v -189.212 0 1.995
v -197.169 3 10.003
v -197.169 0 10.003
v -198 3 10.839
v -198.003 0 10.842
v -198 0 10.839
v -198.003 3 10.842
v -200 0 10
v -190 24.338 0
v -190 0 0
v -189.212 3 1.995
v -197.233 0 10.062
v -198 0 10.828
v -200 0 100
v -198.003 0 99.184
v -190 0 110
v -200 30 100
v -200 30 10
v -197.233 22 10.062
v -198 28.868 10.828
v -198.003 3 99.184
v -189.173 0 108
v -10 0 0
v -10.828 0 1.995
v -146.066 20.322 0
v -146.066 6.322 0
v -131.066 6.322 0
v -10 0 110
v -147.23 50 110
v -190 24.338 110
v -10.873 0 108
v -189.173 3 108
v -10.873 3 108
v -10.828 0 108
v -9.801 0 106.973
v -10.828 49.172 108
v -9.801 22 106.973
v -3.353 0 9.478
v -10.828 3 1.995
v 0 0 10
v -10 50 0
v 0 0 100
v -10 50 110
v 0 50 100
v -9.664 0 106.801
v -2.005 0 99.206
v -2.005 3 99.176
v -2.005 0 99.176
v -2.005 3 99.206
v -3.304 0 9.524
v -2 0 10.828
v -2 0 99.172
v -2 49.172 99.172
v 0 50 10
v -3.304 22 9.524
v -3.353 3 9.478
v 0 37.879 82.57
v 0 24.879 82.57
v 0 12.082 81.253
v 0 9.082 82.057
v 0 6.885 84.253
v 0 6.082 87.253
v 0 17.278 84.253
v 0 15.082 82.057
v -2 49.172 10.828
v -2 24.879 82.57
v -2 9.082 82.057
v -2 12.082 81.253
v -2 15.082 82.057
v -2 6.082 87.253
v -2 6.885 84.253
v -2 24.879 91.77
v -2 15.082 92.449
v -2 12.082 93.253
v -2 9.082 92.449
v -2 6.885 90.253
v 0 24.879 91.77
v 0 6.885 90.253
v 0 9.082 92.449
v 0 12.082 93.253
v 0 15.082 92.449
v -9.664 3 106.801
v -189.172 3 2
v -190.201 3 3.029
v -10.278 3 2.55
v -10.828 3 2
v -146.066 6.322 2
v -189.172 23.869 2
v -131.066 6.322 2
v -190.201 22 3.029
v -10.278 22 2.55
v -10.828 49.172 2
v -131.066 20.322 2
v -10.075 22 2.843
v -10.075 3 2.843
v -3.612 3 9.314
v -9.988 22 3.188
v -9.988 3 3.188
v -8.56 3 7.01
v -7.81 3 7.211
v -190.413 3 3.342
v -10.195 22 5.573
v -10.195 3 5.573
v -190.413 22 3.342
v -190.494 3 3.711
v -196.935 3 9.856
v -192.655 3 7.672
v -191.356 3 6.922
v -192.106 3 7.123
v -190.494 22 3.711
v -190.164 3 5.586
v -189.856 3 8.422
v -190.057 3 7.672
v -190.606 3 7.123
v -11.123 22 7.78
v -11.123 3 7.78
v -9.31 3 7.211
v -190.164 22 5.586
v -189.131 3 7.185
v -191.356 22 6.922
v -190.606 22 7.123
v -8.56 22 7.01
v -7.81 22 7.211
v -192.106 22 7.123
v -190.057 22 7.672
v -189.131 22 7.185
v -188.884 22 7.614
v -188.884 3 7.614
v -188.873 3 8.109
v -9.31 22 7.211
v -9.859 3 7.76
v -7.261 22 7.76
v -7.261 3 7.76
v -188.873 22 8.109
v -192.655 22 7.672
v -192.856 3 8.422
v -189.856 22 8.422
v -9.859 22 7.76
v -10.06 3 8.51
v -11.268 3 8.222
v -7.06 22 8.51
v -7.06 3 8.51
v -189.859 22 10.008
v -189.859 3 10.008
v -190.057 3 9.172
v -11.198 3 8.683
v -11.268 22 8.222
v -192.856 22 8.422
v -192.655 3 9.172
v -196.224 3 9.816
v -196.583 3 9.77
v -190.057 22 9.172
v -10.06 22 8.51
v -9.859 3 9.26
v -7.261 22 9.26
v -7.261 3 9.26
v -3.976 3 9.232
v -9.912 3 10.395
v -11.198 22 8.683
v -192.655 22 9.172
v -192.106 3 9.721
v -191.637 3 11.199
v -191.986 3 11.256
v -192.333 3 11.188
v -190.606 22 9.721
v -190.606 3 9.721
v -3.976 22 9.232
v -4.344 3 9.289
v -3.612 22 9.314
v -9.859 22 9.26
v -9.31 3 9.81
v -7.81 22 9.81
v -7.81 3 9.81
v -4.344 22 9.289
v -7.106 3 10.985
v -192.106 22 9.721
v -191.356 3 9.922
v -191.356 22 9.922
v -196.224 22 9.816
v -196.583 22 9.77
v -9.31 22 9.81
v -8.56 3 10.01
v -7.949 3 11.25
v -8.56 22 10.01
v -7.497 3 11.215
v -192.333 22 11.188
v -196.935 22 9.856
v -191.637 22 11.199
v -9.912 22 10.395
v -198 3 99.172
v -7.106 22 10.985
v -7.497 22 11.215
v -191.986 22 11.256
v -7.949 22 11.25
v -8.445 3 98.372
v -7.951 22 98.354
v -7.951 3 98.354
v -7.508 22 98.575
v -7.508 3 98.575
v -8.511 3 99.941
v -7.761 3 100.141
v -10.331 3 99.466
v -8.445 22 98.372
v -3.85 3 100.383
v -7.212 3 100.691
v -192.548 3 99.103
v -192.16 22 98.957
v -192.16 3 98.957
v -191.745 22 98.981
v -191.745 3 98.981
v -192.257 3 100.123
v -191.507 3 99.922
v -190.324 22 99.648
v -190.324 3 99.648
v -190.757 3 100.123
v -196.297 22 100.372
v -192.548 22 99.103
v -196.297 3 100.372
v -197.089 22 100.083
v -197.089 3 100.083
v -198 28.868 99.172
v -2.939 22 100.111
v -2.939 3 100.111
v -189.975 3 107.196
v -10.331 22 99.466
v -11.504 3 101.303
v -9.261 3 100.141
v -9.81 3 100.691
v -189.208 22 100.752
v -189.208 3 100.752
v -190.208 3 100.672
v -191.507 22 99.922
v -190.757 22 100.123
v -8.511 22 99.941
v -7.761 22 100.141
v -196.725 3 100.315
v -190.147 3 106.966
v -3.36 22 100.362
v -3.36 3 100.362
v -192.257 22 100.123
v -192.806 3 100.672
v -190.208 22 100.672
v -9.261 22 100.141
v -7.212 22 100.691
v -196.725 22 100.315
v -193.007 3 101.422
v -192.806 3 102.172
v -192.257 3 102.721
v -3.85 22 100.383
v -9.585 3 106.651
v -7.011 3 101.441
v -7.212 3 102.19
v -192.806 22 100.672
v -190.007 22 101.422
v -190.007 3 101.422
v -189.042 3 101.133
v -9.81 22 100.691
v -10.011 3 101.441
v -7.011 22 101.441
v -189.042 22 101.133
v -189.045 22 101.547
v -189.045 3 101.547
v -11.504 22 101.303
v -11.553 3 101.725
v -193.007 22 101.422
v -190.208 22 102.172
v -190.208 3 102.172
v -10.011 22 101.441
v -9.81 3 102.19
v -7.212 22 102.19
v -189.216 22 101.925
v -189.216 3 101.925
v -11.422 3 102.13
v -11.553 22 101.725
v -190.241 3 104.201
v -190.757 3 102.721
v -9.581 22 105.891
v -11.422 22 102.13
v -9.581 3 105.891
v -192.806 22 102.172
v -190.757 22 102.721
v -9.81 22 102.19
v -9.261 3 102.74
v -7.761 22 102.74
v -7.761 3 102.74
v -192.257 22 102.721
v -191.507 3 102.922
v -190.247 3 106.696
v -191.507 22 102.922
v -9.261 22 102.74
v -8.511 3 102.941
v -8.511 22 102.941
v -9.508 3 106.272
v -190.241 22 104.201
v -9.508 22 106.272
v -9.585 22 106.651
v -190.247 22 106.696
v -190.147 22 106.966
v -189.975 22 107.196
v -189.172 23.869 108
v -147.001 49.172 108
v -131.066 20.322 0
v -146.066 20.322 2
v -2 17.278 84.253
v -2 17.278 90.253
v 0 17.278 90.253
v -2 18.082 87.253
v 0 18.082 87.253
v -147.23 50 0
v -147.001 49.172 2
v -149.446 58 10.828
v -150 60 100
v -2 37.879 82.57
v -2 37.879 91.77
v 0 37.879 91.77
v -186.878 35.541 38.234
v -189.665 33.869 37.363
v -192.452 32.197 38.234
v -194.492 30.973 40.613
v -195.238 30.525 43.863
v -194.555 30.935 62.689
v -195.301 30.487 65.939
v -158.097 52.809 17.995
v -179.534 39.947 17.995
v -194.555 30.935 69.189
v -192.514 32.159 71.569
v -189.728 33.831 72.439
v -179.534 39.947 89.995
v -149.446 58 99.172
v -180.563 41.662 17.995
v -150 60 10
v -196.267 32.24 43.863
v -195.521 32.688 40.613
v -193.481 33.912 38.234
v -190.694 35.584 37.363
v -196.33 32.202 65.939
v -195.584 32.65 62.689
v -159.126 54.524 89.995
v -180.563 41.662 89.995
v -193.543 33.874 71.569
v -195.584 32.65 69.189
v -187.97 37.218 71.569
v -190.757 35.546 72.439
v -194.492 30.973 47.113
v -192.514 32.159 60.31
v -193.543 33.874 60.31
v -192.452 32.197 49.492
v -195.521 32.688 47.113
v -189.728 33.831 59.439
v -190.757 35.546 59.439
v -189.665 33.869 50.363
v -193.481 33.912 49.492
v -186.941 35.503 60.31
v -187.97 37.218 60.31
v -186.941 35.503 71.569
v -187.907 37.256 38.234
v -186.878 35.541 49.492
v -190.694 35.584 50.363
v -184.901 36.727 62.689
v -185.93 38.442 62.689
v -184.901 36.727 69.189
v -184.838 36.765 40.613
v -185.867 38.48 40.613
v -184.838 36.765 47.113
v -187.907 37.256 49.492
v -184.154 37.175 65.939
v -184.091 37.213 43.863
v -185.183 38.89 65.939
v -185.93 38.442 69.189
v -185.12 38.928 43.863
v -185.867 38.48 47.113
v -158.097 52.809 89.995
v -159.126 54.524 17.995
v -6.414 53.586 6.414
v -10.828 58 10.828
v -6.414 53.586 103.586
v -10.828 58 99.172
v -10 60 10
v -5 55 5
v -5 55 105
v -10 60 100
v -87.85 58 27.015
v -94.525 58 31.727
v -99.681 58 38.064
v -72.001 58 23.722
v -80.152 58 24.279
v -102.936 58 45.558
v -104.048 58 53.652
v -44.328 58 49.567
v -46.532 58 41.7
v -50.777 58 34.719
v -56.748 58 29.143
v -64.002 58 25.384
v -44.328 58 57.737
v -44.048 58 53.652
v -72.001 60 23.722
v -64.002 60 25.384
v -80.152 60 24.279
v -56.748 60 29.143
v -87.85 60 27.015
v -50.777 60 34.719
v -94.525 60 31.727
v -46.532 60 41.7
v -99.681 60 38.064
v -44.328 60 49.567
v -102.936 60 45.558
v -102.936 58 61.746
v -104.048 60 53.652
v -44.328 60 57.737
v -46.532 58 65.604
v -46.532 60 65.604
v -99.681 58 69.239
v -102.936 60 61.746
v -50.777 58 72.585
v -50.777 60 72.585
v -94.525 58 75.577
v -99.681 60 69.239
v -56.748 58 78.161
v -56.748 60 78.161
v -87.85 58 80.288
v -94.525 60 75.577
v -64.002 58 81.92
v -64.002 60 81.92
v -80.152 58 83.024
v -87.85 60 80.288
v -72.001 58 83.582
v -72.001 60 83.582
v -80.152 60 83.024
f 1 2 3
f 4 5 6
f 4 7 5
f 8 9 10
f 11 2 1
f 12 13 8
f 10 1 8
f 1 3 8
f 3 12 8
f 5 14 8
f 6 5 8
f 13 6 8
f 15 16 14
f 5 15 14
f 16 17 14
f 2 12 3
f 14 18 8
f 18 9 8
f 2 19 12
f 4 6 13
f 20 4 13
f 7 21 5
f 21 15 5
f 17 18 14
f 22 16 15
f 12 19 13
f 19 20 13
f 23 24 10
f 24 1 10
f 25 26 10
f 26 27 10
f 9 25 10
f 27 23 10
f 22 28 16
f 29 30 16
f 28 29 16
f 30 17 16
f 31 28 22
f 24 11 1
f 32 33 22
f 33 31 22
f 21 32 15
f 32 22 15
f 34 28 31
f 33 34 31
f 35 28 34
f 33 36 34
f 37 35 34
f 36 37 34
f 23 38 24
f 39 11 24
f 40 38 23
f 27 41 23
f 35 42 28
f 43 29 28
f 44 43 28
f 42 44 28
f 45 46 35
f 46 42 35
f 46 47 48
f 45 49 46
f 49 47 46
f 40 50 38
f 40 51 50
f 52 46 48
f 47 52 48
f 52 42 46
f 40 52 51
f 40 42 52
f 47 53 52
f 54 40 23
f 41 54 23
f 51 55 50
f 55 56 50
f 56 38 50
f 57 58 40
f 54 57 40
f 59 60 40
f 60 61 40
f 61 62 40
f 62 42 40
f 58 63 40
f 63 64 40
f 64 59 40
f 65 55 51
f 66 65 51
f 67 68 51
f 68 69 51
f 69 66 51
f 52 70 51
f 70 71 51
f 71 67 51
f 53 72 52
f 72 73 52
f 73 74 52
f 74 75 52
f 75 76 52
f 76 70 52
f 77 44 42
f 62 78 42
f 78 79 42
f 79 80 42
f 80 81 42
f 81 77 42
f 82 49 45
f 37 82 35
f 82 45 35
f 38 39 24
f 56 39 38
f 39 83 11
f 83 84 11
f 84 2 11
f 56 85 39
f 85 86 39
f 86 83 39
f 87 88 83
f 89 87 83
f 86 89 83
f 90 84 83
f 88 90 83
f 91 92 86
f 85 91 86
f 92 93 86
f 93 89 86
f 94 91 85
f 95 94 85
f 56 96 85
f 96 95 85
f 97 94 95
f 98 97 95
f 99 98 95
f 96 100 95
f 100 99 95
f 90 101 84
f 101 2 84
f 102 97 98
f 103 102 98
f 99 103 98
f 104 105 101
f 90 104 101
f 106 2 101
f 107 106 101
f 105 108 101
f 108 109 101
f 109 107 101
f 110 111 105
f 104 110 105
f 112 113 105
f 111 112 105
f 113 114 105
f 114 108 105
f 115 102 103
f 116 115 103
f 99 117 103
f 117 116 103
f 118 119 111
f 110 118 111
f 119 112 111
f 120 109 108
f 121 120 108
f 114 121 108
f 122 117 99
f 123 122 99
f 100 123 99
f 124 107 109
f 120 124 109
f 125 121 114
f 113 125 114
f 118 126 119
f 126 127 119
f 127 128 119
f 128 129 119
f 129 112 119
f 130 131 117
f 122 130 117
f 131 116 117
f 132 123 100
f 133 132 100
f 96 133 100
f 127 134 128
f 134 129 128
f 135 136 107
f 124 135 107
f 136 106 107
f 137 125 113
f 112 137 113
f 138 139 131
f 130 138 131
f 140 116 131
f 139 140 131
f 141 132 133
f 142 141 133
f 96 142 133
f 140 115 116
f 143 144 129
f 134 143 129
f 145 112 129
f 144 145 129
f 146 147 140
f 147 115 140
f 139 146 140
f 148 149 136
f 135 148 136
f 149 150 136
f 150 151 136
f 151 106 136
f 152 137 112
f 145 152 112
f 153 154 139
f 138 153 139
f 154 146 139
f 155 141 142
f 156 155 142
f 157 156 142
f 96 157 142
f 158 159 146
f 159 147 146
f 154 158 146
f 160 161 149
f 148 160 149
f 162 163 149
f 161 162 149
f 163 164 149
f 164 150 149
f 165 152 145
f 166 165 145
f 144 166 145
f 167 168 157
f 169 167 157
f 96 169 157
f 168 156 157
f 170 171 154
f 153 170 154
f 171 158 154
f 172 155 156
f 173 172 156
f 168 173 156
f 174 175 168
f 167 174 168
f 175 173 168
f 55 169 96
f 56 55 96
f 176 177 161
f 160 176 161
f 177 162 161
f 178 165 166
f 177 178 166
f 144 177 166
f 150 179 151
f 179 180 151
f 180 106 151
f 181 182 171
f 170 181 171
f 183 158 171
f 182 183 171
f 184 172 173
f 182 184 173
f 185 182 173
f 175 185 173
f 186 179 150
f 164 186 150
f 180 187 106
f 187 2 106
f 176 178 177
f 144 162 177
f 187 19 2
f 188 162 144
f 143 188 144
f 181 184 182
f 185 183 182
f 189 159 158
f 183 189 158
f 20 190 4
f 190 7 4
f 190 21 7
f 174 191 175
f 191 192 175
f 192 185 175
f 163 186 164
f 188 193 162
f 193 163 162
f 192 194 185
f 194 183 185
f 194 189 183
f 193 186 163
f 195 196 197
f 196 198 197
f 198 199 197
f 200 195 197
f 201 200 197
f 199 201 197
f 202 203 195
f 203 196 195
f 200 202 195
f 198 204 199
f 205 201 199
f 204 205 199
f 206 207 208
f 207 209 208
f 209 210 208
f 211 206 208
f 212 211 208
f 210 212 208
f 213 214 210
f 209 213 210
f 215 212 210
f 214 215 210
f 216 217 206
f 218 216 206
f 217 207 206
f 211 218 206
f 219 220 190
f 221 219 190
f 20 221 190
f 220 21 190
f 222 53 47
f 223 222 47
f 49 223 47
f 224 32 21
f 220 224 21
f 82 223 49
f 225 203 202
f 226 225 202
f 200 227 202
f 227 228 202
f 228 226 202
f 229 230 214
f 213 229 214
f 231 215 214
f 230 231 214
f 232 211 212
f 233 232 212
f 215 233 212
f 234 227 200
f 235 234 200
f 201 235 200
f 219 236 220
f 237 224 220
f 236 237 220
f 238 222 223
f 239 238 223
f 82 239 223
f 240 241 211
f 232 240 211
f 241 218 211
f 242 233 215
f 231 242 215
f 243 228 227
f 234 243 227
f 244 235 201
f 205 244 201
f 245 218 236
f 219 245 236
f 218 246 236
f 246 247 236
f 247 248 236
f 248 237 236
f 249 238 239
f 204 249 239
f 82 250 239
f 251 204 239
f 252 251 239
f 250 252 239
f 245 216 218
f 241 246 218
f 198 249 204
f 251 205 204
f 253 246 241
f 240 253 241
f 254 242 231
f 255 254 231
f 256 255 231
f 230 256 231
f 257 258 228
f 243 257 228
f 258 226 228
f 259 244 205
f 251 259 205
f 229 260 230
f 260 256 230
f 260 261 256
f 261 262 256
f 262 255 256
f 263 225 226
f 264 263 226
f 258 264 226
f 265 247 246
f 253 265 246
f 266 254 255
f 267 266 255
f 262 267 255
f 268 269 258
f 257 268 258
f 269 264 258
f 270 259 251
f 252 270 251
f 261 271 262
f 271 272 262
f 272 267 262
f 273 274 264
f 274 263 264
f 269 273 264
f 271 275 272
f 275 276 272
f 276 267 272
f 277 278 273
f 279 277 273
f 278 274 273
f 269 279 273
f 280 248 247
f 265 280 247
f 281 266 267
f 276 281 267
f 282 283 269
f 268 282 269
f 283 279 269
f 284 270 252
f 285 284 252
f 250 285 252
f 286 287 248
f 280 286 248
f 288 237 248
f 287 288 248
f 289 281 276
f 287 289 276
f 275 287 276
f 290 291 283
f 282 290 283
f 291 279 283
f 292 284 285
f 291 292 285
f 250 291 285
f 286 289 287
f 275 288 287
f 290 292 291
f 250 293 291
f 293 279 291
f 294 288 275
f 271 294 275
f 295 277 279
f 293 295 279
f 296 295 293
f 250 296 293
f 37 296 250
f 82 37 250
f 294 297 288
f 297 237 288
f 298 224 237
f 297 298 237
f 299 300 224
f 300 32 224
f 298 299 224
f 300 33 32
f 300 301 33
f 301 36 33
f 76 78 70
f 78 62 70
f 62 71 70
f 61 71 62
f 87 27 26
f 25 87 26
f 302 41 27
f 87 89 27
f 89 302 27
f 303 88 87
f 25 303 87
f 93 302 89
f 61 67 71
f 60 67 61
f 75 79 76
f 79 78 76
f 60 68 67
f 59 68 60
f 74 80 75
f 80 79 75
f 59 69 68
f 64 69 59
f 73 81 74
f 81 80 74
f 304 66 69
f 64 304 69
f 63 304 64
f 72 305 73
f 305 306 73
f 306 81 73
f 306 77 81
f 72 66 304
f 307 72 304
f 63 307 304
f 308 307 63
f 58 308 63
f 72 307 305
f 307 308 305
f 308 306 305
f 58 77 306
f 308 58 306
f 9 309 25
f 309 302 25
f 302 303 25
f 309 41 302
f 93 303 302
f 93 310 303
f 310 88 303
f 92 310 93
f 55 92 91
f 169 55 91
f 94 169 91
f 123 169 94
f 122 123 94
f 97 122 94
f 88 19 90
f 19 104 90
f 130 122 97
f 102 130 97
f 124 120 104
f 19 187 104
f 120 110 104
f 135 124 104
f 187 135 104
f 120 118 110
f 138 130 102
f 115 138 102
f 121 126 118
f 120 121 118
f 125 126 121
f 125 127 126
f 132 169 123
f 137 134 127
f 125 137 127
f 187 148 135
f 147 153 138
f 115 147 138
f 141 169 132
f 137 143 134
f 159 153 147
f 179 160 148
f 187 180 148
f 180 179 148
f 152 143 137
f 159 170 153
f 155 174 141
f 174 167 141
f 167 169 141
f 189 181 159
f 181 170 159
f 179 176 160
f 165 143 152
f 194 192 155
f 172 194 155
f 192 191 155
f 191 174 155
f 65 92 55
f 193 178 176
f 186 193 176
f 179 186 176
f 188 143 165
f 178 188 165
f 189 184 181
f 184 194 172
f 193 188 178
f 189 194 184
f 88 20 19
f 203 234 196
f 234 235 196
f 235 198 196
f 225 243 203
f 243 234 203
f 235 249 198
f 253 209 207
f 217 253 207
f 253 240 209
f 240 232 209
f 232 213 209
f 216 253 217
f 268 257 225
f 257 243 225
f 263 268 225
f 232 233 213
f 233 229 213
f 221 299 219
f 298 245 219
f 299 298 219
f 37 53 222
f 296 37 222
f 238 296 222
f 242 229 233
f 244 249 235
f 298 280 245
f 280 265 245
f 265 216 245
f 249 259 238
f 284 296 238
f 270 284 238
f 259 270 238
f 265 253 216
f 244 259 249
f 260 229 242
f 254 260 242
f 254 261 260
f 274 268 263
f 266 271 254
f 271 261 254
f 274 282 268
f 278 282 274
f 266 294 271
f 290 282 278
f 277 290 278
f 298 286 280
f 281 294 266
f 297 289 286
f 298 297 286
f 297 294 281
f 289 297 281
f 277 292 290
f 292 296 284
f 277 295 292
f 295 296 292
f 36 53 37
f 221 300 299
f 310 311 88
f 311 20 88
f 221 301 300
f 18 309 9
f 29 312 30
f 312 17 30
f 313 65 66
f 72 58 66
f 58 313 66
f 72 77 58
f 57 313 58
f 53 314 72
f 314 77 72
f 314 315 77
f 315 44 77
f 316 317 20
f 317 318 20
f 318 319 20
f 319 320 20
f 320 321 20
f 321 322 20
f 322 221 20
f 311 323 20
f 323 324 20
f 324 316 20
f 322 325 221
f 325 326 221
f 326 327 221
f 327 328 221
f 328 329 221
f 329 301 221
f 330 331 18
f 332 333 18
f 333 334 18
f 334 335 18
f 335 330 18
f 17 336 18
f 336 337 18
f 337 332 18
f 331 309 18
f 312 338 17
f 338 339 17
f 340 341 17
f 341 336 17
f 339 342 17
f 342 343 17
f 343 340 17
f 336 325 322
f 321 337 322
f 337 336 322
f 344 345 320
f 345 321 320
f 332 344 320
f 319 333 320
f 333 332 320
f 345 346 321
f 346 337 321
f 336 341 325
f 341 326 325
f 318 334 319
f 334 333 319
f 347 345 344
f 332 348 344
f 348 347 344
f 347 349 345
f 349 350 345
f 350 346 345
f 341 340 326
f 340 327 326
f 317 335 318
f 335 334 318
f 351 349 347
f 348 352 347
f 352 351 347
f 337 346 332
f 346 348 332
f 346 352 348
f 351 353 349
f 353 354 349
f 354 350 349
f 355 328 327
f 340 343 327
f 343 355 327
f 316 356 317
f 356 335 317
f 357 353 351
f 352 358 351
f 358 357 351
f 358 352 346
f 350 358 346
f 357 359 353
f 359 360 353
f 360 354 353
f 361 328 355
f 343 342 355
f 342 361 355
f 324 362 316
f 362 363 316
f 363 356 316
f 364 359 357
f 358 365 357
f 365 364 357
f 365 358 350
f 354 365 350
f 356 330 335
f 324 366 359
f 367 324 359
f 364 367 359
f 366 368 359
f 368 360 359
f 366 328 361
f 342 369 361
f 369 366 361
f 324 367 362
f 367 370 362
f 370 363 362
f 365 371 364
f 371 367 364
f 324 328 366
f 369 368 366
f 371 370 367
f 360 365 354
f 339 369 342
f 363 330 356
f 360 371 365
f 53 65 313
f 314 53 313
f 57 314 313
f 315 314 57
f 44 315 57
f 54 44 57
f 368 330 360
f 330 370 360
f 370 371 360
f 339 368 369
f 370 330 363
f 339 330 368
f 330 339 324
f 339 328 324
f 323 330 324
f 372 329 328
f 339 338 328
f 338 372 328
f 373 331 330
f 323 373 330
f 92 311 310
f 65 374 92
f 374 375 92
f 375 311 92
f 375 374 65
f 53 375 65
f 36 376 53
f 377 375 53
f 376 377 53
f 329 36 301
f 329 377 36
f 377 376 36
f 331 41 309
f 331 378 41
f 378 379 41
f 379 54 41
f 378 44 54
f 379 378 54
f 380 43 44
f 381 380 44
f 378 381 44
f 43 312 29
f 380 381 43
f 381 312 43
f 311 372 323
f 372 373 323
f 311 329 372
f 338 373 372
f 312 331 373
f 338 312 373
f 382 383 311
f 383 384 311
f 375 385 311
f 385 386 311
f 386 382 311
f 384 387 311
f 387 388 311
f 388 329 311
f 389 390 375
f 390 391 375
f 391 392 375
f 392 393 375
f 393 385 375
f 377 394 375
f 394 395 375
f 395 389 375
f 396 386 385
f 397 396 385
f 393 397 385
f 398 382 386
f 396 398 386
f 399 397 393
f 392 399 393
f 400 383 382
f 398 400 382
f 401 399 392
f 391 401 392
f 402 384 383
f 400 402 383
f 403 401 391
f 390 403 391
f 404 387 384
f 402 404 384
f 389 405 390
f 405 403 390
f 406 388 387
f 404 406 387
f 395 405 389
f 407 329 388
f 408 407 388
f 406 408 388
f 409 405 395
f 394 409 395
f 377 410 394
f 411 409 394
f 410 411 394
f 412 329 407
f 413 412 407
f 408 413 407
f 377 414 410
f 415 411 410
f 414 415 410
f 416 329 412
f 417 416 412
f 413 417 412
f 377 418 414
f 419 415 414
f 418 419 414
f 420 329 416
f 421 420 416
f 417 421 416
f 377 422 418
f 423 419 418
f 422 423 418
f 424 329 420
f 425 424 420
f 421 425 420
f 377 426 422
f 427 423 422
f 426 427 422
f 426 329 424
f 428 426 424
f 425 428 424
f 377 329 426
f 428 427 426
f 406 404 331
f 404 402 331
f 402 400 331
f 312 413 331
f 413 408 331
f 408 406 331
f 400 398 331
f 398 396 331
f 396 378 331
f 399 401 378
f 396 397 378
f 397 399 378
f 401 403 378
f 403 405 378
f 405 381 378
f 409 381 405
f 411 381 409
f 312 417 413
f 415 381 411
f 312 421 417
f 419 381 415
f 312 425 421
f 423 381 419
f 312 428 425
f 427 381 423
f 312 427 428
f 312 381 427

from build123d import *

# Parameters (mm, degrees)
BOSS_EXTRUDE1_DEPTH = 110
CHAMFER1_SIZE       = 10
CHAMFER2_SIZE       = 10
SHELL2_T            = -2
SKETCH2_W           = 25
SKETCH2_H           = 72
CUT_EXTRUDE2_DEPTH  = 90
SKETCH4_R           = 6.5
CUT_EXTRUDE3_DEPTH  = 90
SKETCH5_R           = 1.5
BOSS_EXTRUDE2_DEPTH = 22
FILLET2_R           = 1
CUT_EXTRUDE4_DEPTH  = 3
SKETCH7_R           = 30
CUT_EXTRUDE5_DEPTH  = 61
SKETCH9_R           = 6
SKETCH9_W           = 9.2
SKETCH9_H           = 13
CUT_EXTRUDE6_DEPTH  = 48
SKETCH10_W          = 15
SKETCH10_H          = 14
CUT_EXTRUDE7_DEPTH  = 48


with BuildPart() as part:
    # Sketch1 → Boss-Extrude1 (new body)
    with BuildSketch(Plane.XY):
        Polygon((-200, 30), (-150, 60), (0, 60), (0, 0), (-200, 0), align=None)
    extrude(amount=BOSS_EXTRUDE1_DEPTH)

    # Chamfer1
    chamfer1_edges = [part.edges().sort_by_distance(p)[0] for p in [
        (-175, 45, 110),
        (-200, 15, 110),
        (0, 30, 110),
        (-200, 15, 0),
        (-175, 45, 0),
        (-75, 60, 0),
        (0, 30, 0),
        (-75, 60, 110),
    ]]
    chamfer(chamfer1_edges, length=CHAMFER1_SIZE)

    # Chamfer2
    chamfer2_edges = [part.edges().sort_by_distance(p)[0] for p in [
        (0, 60, 55),
    ]]
    chamfer(chamfer2_edges, length=CHAMFER2_SIZE)

    # Shell2
    shell2_openings = [part.faces().sort_by_distance(p)[0] for p in [
        (-100, 0, 55),
    ]]
    offset(amount=SHELL2_T, openings=shell2_openings, kind=Kind.INTERSECTION)

    # Sketch2 → Cut-Extrude2 (cut)
    with BuildSketch(Plane(origin=(-66.176470588, 110.294117647, 0), x_dir=(0.8574929257125443, 0.5144957554275263, 0), z_dir=(-0.5144957554275263, 0.8574929257125443, 0))):
        with Locations((-120.89691226, -53.994862886)):
            Rectangle(SKETCH2_W, SKETCH2_H)
    extrude(amount=-CUT_EXTRUDE2_DEPTH, mode=Mode.SUBTRACT)

    # Sketch4 → Cut-Extrude3 (cut)
    with BuildSketch(Plane(origin=(-66.176470588, 110.294117647, 0), x_dir=(0.8574929257125443, 0.5144957554275263, 0), z_dir=(-0.5144957554275263, 0.8574929257125443, 0))):
        with Locations(Location((-145.210771321, -43.863127818, 0), (0, 0, 180))):
            Circle(SKETCH4_R)
        with Locations(Location((-145.284101168, -65.939492282, 0), (0, 0, 180))):
            Circle(SKETCH4_R)
    extrude(amount=-CUT_EXTRUDE3_DEPTH, mode=Mode.SUBTRACT)

    # Sketch5 → Boss-Extrude2 (add)
    # profile 1 of 4: a face of its own
    with BuildSketch(Plane.XZ):
        with BuildLine():
            Line((-9.247397896, 106.757043705), (-3.256064459, 100.483765165))
            ThreePointArc((-3.256064459, 100.483765165), (-5.744873038, 99.736713828), (-7.870281401, 98.241757931))
            ThreePointArc((-7.870281401, 98.241757931), (-10.292221795, 99.429108259), (-11.636574356, 101.767550533))
            ThreePointArc((-11.636574356, 101.767550533), (-10.323587398, 104.205602893), (-9.247397896, 106.757043705))
        make_face()
        with Locations((-8.511299496, 101.440505433)):
            Circle(SKETCH5_R, mode=Mode.SUBTRACT)
    # profile 2 of 4: a face of its own
    with BuildSketch(Plane.XZ):
        with BuildLine():
            Line((-10.039510209, 2.683192712), (-3.513368166, 9.046181203))
            ThreePointArc((-3.513368166, 9.046181203), (-5.632030744, 9.88127065), (-7.41571196, 11.29710497))
            ThreePointArc((-7.41571196, 11.29710497), (-9.918845287, 10.389628717), (-11.372165694, 8.158698553))
            ThreePointArc((-11.372165694, 8.158698553), (-10.188591886, 5.546835518), (-10.039510209, 2.683192712))
        make_face()
        with Locations((-8.560298278, 8.510476998)):
            Circle(SKETCH5_R, mode=Mode.SUBTRACT)
    # profile 3 of 4: a face of its own
    with BuildSketch(Plane.XZ):
        with BuildLine():
            Line((-190.1639185, 107.037062189), (-196.90252996, 100.401487601))
            ThreePointArc((-196.90252996, 100.401487601), (-194.442462904, 99.997388644), (-192.214833899, 98.878060765))
            ThreePointArc((-192.214833899, 98.878060765), (-190.200311855, 99.737450982), (-188.807968894, 101.428081542))
            ThreePointArc((-188.807968894, 101.428081542), (-190.20827937, 104.057949981), (-190.1639185, 107.037062189))
        make_face()
        with Locations((-191.50742986, 101.422355381)):
            Circle(SKETCH5_R, mode=Mode.SUBTRACT)
    # profile 4 of 4: a face of its own
    with BuildSketch(Plane.XZ):
        with BuildLine():
            Line((-190.456179178, 3.22389745), (-196.869032371, 9.61475183))
            ThreePointArc((-196.869032371, 9.61475183), (-194.424366222, 10.415493615), (-192.013666474, 11.313328071))
            ThreePointArc((-192.013666474, 11.313328071), (-189.789786951, 9.928723292), (-188.777999187, 7.512309411))
            ThreePointArc((-188.777999187, 7.512309411), (-190.165240448, 5.582610921), (-190.456179178, 3.22389745))
        make_face()
        with Locations((-191.356454927, 8.42171973)):
            Circle(SKETCH5_R, mode=Mode.SUBTRACT)
    extrude(amount=-BOSS_EXTRUDE2_DEPTH)

    # Fillet2
    fillet2_edges = [part.edges().sort_by_distance(p)[0] for p in [
        (-196.80570876, 11, 9.634135884),
        (-190.464527553, 11, 3.292954677),
        (-188.777999187, 11, 7.512309411),
        (-192.013666474, 11, 11.313328071),
        (-10.024061604, 11, 2.80436552),
        (-3.72900082, 11, 9.099426304),
        (-7.41571196, 11, 11.29710497),
        (-11.372165694, 11, 8.158698553),
        (-196.772588823, 11, 100.398984052),
        (-190.174781799, 11, 106.996791076),
        (-192.214833899, 11, 98.878060765),
        (-188.807968894, 11, 101.428081542),
        (-3.305525067, 11, 100.477097942),
        (-9.339081083, 11, 106.510653959),
        (-11.636574356, 11, 101.767550533),
        (-7.870281401, 11, 98.241757931),
    ]]
    fillet(fillet2_edges, radius=FILLET2_R)

    # Sketch6 → Cut-Extrude4 (cut)
    with BuildSketch(Plane.XZ):
        Polygon((-198.003014977, 10.842085531), (-189.211900871, 1.9947291), (-10.828081787, 1.9947291), (-2.004701189, 10.828504844), (-2.004701189, 99.205715336), (-10.87289136, 108.000350983), (-189.173255871, 108.000350983), (-198.003014977, 99.184415132), align=None)
    extrude(amount=-CUT_EXTRUDE4_DEPTH, mode=Mode.SUBTRACT)

    # Sketch7 → Cut-Extrude5 (cut)
    with BuildSketch(Plane(origin=(0, 60, 0), x_dir=(1, 0, 0), z_dir=(0, 1, 0))):
        with Locations(Location((-74.048474832, -53.651868822, 0), (0, 0, 180))):
            Circle(SKETCH7_R)
    extrude(amount=-CUT_EXTRUDE5_DEPTH, mode=Mode.SUBTRACT)

    # Sketch9 → Cut-Extrude6 (cut)
    with BuildSketch(Plane(origin=(0, 0, 0), x_dir=(0, 0, -1), z_dir=(1, 0, 0))):
        with Locations((-87.253164056, 12.081575525)):
            Circle(SKETCH9_R)
        with Locations((-87.170080289, 31.378854617)):
            Rectangle(SKETCH9_W, SKETCH9_H)
    extrude(amount=-CUT_EXTRUDE6_DEPTH, mode=Mode.SUBTRACT)

    # Sketch10 → Cut-Extrude7 (cut)
    with BuildSketch(Plane(origin=(0, 0, 0), x_dir=(-1, 0, 0), z_dir=(0, 0, -1))):
        with Locations((138.565692725, 13.322096046)):
            Rectangle(SKETCH10_W, SKETCH10_H)
    extrude(amount=-CUT_EXTRUDE7_DEPTH, mode=Mode.SUBTRACT)


solid = part.part
